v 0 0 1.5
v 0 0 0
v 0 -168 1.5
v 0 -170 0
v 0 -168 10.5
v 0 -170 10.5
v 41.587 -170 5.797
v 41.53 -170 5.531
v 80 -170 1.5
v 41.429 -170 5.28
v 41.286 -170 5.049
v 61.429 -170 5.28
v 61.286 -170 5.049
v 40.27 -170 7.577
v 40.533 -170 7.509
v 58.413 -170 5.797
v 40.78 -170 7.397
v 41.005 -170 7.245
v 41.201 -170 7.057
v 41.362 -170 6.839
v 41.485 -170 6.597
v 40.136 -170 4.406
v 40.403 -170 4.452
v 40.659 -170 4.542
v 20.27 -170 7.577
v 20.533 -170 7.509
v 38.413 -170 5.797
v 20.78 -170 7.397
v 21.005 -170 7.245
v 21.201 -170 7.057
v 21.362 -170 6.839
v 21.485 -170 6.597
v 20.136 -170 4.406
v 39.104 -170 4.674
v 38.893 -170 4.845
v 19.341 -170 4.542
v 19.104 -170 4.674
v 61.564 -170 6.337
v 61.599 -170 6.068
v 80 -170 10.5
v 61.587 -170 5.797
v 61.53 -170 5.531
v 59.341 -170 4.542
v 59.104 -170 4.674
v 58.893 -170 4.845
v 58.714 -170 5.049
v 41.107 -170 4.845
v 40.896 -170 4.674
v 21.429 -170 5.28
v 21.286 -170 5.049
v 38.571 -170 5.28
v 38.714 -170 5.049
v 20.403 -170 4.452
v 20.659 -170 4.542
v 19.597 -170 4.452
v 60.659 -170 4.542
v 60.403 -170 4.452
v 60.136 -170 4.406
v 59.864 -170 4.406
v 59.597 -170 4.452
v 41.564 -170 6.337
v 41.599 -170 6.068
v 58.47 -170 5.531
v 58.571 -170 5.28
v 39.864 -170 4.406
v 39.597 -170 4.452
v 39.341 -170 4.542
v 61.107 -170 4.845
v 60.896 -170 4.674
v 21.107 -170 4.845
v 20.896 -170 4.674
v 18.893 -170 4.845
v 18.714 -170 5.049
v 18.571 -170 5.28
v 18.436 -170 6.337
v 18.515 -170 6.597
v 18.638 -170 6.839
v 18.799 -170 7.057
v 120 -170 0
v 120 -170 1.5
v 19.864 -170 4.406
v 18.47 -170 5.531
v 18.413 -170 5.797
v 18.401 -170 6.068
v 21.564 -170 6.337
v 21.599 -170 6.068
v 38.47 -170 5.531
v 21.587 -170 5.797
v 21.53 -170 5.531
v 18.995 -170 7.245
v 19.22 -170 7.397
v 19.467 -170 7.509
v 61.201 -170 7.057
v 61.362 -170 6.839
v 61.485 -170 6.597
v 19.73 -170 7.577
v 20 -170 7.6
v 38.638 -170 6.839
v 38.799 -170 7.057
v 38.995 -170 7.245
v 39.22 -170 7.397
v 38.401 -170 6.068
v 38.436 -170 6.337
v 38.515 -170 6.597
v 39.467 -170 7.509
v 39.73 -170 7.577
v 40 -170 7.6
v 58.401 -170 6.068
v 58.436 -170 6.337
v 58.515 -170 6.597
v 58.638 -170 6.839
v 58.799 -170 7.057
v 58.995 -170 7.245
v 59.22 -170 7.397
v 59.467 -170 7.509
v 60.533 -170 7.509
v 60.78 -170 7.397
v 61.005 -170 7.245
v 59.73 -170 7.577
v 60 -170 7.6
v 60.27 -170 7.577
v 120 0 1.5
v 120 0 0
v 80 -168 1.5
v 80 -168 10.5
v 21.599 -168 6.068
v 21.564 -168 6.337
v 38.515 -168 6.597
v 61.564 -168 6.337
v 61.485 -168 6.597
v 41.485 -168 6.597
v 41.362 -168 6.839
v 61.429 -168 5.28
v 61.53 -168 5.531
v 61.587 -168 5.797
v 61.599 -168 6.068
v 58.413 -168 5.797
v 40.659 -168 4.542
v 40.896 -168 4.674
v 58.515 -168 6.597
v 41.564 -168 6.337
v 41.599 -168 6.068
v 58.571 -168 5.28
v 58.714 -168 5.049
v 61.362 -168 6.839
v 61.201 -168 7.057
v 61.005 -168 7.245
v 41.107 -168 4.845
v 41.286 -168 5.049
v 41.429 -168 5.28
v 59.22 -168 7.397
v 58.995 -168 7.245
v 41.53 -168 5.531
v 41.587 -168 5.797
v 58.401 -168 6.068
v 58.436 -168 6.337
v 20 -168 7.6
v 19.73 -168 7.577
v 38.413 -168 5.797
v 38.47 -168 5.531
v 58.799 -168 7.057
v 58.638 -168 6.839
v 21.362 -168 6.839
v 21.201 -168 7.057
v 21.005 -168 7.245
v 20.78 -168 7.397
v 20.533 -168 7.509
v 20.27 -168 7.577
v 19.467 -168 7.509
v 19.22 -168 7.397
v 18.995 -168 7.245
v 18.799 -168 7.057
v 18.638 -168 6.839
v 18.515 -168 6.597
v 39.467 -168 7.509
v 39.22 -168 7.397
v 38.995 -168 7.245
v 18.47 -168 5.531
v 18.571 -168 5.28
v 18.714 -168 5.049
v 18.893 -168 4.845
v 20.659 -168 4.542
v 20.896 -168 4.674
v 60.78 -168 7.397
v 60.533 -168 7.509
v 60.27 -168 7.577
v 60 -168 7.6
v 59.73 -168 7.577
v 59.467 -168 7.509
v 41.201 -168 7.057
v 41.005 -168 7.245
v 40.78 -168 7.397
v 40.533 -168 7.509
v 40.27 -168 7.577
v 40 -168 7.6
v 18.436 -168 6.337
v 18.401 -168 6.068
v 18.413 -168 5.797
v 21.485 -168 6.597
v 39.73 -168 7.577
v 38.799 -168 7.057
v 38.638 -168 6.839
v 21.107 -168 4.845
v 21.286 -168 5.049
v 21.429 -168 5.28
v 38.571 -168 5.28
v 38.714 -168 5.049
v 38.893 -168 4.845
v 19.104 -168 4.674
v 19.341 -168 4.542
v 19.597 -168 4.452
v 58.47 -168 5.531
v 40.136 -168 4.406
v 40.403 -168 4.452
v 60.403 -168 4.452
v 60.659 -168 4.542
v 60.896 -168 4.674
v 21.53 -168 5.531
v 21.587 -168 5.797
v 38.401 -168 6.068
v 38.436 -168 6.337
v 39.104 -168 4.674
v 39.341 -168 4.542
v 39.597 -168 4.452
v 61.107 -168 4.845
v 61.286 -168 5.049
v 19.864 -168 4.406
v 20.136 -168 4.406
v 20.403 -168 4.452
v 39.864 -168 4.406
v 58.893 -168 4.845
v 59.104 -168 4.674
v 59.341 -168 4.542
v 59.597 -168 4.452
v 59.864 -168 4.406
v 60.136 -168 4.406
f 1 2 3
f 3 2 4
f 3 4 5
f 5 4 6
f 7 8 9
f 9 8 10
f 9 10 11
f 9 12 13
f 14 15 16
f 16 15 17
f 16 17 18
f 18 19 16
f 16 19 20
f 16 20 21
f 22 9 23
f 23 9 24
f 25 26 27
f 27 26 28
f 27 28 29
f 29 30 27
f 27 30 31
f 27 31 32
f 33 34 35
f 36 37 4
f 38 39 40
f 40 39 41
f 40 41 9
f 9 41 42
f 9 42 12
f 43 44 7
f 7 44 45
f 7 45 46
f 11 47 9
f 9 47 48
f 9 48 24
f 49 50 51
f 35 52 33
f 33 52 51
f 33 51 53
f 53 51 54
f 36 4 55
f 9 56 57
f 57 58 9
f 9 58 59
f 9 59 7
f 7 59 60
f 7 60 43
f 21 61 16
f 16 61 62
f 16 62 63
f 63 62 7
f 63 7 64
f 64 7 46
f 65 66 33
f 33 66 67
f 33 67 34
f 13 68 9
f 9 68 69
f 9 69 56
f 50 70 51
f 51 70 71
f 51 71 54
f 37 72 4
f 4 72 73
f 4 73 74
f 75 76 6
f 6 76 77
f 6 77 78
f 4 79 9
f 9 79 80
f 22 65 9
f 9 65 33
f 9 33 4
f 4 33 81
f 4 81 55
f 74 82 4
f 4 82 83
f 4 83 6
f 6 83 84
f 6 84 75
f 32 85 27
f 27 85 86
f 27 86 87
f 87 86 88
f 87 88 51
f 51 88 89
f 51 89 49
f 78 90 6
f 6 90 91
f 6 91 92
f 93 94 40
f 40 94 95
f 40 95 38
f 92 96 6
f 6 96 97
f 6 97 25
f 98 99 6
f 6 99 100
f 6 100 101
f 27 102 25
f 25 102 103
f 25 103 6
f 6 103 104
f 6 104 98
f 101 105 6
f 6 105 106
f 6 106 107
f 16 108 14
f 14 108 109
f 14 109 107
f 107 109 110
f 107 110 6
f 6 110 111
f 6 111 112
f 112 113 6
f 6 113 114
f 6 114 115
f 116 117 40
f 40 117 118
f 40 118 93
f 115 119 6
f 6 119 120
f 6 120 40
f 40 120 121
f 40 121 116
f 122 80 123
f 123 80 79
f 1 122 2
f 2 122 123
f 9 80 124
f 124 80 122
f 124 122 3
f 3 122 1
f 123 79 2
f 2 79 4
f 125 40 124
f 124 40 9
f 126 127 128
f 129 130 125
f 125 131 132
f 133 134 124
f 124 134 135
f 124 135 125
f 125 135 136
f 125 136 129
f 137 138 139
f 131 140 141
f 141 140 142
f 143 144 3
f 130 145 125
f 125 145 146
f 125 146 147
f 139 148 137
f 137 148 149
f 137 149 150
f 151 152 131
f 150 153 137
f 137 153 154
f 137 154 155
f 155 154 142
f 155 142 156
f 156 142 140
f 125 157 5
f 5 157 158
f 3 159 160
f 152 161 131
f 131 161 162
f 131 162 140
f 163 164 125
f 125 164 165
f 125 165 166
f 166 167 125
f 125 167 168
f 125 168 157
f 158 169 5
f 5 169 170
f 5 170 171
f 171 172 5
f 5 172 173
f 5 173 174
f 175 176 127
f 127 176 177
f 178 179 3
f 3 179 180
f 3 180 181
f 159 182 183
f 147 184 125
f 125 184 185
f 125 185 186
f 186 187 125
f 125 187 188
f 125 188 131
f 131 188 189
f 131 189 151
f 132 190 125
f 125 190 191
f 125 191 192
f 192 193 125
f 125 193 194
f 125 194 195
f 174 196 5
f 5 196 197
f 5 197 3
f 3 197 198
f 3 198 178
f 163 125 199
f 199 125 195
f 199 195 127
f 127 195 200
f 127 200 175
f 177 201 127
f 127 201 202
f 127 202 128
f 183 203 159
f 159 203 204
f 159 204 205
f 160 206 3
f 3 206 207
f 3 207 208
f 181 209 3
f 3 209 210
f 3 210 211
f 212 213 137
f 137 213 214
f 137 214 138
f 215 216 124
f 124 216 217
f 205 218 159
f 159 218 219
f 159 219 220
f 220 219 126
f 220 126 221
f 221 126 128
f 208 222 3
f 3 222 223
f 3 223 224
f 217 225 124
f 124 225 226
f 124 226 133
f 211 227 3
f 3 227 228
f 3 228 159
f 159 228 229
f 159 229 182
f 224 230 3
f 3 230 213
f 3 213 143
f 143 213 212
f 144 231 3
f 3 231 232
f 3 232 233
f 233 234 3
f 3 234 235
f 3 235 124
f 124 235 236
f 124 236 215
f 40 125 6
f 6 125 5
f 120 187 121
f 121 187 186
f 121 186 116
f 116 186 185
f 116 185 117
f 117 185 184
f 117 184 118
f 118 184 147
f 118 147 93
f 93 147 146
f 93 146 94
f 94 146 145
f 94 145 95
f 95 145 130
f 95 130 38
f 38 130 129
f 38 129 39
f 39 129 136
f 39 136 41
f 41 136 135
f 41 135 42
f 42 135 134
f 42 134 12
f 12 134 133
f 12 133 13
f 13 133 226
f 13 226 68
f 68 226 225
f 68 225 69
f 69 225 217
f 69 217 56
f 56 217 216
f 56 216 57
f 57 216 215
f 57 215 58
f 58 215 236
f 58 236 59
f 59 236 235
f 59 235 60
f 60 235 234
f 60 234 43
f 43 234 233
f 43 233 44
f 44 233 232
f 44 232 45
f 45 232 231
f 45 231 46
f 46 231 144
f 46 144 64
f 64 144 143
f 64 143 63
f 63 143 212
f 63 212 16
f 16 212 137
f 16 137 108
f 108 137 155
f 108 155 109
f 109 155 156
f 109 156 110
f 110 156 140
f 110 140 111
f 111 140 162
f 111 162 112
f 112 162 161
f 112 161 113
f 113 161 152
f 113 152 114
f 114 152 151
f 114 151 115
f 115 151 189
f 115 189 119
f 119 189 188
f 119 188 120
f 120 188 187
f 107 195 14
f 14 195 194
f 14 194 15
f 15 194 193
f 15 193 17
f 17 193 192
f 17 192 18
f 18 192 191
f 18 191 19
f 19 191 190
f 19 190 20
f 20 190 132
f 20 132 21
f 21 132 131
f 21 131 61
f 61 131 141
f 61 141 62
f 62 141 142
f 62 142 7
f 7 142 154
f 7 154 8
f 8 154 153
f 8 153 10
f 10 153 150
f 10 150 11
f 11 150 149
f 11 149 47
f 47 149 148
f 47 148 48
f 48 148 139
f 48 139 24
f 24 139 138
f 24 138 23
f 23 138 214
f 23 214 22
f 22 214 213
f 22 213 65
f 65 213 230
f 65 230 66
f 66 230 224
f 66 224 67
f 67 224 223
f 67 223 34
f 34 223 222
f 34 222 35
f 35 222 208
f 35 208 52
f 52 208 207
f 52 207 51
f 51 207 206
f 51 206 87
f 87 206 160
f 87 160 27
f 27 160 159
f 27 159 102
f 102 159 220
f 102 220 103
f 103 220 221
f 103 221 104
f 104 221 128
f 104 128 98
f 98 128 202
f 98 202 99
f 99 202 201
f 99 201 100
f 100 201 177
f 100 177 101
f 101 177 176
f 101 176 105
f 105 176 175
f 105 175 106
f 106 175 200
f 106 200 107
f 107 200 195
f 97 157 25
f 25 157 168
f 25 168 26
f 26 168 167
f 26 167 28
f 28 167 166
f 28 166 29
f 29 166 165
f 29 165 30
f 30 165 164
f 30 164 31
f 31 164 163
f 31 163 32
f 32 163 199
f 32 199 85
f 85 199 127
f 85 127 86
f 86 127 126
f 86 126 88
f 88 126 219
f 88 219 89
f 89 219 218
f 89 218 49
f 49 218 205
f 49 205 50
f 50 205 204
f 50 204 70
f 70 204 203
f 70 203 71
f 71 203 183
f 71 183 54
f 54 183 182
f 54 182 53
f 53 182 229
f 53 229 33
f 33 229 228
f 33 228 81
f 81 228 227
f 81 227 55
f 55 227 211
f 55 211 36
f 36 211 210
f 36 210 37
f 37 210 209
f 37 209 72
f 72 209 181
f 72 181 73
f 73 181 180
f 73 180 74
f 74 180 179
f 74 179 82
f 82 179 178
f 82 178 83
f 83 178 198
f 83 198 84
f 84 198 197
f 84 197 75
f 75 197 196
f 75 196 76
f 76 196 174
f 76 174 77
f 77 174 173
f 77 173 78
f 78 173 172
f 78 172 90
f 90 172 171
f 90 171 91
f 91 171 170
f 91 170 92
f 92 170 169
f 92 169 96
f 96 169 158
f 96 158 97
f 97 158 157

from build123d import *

# Parameters (mm, degrees)
SKETCH_1_W          = 120
SKETCH_1_H          = 170
EXTRUDE_1_DEPTH     = 1.5
SKETCH_2_W          = 80
SKETCH_2_H          = 2
EXTRUDE_2_DEPTH     = 9
SKETCH_3_R          = 1.6
CUT_EXTRUDE_1_DEPTH = 9


with BuildPart() as part:
    # 草图1 → 凸台-拉伸1 (new body)
    with BuildSketch(Plane.XY):
        with Locations((60, -85)):
            Rectangle(SKETCH_1_W, SKETCH_1_H)
    extrude(amount=EXTRUDE_1_DEPTH)

    # 草图2 → 凸台-拉伸2 (add)
    with BuildSketch(Plane.XY.offset(1.5)):
        with Locations((40, -169)):
            Rectangle(SKETCH_2_W, SKETCH_2_H)
    extrude(amount=EXTRUDE_2_DEPTH)

    # 草图3 → 切除-拉伸1 (cut)
    with BuildSketch(Plane(origin=(0, -168, 0), x_dir=(1, 0, 0), z_dir=(0, 1, 0))):
        with Locations(Location((20, -6, 0), (0, 0, 270))):
            Circle(SKETCH_3_R)
        with Locations(Location((40, -6, 0), (0, 0, 270))):
            Circle(SKETCH_3_R)
        with Locations(Location((60, -6, 0), (0, 0, 270))):
            Circle(SKETCH_3_R)
    extrude(amount=-CUT_EXTRUDE_1_DEPTH, mode=Mode.SUBTRACT)


solid = part.part
